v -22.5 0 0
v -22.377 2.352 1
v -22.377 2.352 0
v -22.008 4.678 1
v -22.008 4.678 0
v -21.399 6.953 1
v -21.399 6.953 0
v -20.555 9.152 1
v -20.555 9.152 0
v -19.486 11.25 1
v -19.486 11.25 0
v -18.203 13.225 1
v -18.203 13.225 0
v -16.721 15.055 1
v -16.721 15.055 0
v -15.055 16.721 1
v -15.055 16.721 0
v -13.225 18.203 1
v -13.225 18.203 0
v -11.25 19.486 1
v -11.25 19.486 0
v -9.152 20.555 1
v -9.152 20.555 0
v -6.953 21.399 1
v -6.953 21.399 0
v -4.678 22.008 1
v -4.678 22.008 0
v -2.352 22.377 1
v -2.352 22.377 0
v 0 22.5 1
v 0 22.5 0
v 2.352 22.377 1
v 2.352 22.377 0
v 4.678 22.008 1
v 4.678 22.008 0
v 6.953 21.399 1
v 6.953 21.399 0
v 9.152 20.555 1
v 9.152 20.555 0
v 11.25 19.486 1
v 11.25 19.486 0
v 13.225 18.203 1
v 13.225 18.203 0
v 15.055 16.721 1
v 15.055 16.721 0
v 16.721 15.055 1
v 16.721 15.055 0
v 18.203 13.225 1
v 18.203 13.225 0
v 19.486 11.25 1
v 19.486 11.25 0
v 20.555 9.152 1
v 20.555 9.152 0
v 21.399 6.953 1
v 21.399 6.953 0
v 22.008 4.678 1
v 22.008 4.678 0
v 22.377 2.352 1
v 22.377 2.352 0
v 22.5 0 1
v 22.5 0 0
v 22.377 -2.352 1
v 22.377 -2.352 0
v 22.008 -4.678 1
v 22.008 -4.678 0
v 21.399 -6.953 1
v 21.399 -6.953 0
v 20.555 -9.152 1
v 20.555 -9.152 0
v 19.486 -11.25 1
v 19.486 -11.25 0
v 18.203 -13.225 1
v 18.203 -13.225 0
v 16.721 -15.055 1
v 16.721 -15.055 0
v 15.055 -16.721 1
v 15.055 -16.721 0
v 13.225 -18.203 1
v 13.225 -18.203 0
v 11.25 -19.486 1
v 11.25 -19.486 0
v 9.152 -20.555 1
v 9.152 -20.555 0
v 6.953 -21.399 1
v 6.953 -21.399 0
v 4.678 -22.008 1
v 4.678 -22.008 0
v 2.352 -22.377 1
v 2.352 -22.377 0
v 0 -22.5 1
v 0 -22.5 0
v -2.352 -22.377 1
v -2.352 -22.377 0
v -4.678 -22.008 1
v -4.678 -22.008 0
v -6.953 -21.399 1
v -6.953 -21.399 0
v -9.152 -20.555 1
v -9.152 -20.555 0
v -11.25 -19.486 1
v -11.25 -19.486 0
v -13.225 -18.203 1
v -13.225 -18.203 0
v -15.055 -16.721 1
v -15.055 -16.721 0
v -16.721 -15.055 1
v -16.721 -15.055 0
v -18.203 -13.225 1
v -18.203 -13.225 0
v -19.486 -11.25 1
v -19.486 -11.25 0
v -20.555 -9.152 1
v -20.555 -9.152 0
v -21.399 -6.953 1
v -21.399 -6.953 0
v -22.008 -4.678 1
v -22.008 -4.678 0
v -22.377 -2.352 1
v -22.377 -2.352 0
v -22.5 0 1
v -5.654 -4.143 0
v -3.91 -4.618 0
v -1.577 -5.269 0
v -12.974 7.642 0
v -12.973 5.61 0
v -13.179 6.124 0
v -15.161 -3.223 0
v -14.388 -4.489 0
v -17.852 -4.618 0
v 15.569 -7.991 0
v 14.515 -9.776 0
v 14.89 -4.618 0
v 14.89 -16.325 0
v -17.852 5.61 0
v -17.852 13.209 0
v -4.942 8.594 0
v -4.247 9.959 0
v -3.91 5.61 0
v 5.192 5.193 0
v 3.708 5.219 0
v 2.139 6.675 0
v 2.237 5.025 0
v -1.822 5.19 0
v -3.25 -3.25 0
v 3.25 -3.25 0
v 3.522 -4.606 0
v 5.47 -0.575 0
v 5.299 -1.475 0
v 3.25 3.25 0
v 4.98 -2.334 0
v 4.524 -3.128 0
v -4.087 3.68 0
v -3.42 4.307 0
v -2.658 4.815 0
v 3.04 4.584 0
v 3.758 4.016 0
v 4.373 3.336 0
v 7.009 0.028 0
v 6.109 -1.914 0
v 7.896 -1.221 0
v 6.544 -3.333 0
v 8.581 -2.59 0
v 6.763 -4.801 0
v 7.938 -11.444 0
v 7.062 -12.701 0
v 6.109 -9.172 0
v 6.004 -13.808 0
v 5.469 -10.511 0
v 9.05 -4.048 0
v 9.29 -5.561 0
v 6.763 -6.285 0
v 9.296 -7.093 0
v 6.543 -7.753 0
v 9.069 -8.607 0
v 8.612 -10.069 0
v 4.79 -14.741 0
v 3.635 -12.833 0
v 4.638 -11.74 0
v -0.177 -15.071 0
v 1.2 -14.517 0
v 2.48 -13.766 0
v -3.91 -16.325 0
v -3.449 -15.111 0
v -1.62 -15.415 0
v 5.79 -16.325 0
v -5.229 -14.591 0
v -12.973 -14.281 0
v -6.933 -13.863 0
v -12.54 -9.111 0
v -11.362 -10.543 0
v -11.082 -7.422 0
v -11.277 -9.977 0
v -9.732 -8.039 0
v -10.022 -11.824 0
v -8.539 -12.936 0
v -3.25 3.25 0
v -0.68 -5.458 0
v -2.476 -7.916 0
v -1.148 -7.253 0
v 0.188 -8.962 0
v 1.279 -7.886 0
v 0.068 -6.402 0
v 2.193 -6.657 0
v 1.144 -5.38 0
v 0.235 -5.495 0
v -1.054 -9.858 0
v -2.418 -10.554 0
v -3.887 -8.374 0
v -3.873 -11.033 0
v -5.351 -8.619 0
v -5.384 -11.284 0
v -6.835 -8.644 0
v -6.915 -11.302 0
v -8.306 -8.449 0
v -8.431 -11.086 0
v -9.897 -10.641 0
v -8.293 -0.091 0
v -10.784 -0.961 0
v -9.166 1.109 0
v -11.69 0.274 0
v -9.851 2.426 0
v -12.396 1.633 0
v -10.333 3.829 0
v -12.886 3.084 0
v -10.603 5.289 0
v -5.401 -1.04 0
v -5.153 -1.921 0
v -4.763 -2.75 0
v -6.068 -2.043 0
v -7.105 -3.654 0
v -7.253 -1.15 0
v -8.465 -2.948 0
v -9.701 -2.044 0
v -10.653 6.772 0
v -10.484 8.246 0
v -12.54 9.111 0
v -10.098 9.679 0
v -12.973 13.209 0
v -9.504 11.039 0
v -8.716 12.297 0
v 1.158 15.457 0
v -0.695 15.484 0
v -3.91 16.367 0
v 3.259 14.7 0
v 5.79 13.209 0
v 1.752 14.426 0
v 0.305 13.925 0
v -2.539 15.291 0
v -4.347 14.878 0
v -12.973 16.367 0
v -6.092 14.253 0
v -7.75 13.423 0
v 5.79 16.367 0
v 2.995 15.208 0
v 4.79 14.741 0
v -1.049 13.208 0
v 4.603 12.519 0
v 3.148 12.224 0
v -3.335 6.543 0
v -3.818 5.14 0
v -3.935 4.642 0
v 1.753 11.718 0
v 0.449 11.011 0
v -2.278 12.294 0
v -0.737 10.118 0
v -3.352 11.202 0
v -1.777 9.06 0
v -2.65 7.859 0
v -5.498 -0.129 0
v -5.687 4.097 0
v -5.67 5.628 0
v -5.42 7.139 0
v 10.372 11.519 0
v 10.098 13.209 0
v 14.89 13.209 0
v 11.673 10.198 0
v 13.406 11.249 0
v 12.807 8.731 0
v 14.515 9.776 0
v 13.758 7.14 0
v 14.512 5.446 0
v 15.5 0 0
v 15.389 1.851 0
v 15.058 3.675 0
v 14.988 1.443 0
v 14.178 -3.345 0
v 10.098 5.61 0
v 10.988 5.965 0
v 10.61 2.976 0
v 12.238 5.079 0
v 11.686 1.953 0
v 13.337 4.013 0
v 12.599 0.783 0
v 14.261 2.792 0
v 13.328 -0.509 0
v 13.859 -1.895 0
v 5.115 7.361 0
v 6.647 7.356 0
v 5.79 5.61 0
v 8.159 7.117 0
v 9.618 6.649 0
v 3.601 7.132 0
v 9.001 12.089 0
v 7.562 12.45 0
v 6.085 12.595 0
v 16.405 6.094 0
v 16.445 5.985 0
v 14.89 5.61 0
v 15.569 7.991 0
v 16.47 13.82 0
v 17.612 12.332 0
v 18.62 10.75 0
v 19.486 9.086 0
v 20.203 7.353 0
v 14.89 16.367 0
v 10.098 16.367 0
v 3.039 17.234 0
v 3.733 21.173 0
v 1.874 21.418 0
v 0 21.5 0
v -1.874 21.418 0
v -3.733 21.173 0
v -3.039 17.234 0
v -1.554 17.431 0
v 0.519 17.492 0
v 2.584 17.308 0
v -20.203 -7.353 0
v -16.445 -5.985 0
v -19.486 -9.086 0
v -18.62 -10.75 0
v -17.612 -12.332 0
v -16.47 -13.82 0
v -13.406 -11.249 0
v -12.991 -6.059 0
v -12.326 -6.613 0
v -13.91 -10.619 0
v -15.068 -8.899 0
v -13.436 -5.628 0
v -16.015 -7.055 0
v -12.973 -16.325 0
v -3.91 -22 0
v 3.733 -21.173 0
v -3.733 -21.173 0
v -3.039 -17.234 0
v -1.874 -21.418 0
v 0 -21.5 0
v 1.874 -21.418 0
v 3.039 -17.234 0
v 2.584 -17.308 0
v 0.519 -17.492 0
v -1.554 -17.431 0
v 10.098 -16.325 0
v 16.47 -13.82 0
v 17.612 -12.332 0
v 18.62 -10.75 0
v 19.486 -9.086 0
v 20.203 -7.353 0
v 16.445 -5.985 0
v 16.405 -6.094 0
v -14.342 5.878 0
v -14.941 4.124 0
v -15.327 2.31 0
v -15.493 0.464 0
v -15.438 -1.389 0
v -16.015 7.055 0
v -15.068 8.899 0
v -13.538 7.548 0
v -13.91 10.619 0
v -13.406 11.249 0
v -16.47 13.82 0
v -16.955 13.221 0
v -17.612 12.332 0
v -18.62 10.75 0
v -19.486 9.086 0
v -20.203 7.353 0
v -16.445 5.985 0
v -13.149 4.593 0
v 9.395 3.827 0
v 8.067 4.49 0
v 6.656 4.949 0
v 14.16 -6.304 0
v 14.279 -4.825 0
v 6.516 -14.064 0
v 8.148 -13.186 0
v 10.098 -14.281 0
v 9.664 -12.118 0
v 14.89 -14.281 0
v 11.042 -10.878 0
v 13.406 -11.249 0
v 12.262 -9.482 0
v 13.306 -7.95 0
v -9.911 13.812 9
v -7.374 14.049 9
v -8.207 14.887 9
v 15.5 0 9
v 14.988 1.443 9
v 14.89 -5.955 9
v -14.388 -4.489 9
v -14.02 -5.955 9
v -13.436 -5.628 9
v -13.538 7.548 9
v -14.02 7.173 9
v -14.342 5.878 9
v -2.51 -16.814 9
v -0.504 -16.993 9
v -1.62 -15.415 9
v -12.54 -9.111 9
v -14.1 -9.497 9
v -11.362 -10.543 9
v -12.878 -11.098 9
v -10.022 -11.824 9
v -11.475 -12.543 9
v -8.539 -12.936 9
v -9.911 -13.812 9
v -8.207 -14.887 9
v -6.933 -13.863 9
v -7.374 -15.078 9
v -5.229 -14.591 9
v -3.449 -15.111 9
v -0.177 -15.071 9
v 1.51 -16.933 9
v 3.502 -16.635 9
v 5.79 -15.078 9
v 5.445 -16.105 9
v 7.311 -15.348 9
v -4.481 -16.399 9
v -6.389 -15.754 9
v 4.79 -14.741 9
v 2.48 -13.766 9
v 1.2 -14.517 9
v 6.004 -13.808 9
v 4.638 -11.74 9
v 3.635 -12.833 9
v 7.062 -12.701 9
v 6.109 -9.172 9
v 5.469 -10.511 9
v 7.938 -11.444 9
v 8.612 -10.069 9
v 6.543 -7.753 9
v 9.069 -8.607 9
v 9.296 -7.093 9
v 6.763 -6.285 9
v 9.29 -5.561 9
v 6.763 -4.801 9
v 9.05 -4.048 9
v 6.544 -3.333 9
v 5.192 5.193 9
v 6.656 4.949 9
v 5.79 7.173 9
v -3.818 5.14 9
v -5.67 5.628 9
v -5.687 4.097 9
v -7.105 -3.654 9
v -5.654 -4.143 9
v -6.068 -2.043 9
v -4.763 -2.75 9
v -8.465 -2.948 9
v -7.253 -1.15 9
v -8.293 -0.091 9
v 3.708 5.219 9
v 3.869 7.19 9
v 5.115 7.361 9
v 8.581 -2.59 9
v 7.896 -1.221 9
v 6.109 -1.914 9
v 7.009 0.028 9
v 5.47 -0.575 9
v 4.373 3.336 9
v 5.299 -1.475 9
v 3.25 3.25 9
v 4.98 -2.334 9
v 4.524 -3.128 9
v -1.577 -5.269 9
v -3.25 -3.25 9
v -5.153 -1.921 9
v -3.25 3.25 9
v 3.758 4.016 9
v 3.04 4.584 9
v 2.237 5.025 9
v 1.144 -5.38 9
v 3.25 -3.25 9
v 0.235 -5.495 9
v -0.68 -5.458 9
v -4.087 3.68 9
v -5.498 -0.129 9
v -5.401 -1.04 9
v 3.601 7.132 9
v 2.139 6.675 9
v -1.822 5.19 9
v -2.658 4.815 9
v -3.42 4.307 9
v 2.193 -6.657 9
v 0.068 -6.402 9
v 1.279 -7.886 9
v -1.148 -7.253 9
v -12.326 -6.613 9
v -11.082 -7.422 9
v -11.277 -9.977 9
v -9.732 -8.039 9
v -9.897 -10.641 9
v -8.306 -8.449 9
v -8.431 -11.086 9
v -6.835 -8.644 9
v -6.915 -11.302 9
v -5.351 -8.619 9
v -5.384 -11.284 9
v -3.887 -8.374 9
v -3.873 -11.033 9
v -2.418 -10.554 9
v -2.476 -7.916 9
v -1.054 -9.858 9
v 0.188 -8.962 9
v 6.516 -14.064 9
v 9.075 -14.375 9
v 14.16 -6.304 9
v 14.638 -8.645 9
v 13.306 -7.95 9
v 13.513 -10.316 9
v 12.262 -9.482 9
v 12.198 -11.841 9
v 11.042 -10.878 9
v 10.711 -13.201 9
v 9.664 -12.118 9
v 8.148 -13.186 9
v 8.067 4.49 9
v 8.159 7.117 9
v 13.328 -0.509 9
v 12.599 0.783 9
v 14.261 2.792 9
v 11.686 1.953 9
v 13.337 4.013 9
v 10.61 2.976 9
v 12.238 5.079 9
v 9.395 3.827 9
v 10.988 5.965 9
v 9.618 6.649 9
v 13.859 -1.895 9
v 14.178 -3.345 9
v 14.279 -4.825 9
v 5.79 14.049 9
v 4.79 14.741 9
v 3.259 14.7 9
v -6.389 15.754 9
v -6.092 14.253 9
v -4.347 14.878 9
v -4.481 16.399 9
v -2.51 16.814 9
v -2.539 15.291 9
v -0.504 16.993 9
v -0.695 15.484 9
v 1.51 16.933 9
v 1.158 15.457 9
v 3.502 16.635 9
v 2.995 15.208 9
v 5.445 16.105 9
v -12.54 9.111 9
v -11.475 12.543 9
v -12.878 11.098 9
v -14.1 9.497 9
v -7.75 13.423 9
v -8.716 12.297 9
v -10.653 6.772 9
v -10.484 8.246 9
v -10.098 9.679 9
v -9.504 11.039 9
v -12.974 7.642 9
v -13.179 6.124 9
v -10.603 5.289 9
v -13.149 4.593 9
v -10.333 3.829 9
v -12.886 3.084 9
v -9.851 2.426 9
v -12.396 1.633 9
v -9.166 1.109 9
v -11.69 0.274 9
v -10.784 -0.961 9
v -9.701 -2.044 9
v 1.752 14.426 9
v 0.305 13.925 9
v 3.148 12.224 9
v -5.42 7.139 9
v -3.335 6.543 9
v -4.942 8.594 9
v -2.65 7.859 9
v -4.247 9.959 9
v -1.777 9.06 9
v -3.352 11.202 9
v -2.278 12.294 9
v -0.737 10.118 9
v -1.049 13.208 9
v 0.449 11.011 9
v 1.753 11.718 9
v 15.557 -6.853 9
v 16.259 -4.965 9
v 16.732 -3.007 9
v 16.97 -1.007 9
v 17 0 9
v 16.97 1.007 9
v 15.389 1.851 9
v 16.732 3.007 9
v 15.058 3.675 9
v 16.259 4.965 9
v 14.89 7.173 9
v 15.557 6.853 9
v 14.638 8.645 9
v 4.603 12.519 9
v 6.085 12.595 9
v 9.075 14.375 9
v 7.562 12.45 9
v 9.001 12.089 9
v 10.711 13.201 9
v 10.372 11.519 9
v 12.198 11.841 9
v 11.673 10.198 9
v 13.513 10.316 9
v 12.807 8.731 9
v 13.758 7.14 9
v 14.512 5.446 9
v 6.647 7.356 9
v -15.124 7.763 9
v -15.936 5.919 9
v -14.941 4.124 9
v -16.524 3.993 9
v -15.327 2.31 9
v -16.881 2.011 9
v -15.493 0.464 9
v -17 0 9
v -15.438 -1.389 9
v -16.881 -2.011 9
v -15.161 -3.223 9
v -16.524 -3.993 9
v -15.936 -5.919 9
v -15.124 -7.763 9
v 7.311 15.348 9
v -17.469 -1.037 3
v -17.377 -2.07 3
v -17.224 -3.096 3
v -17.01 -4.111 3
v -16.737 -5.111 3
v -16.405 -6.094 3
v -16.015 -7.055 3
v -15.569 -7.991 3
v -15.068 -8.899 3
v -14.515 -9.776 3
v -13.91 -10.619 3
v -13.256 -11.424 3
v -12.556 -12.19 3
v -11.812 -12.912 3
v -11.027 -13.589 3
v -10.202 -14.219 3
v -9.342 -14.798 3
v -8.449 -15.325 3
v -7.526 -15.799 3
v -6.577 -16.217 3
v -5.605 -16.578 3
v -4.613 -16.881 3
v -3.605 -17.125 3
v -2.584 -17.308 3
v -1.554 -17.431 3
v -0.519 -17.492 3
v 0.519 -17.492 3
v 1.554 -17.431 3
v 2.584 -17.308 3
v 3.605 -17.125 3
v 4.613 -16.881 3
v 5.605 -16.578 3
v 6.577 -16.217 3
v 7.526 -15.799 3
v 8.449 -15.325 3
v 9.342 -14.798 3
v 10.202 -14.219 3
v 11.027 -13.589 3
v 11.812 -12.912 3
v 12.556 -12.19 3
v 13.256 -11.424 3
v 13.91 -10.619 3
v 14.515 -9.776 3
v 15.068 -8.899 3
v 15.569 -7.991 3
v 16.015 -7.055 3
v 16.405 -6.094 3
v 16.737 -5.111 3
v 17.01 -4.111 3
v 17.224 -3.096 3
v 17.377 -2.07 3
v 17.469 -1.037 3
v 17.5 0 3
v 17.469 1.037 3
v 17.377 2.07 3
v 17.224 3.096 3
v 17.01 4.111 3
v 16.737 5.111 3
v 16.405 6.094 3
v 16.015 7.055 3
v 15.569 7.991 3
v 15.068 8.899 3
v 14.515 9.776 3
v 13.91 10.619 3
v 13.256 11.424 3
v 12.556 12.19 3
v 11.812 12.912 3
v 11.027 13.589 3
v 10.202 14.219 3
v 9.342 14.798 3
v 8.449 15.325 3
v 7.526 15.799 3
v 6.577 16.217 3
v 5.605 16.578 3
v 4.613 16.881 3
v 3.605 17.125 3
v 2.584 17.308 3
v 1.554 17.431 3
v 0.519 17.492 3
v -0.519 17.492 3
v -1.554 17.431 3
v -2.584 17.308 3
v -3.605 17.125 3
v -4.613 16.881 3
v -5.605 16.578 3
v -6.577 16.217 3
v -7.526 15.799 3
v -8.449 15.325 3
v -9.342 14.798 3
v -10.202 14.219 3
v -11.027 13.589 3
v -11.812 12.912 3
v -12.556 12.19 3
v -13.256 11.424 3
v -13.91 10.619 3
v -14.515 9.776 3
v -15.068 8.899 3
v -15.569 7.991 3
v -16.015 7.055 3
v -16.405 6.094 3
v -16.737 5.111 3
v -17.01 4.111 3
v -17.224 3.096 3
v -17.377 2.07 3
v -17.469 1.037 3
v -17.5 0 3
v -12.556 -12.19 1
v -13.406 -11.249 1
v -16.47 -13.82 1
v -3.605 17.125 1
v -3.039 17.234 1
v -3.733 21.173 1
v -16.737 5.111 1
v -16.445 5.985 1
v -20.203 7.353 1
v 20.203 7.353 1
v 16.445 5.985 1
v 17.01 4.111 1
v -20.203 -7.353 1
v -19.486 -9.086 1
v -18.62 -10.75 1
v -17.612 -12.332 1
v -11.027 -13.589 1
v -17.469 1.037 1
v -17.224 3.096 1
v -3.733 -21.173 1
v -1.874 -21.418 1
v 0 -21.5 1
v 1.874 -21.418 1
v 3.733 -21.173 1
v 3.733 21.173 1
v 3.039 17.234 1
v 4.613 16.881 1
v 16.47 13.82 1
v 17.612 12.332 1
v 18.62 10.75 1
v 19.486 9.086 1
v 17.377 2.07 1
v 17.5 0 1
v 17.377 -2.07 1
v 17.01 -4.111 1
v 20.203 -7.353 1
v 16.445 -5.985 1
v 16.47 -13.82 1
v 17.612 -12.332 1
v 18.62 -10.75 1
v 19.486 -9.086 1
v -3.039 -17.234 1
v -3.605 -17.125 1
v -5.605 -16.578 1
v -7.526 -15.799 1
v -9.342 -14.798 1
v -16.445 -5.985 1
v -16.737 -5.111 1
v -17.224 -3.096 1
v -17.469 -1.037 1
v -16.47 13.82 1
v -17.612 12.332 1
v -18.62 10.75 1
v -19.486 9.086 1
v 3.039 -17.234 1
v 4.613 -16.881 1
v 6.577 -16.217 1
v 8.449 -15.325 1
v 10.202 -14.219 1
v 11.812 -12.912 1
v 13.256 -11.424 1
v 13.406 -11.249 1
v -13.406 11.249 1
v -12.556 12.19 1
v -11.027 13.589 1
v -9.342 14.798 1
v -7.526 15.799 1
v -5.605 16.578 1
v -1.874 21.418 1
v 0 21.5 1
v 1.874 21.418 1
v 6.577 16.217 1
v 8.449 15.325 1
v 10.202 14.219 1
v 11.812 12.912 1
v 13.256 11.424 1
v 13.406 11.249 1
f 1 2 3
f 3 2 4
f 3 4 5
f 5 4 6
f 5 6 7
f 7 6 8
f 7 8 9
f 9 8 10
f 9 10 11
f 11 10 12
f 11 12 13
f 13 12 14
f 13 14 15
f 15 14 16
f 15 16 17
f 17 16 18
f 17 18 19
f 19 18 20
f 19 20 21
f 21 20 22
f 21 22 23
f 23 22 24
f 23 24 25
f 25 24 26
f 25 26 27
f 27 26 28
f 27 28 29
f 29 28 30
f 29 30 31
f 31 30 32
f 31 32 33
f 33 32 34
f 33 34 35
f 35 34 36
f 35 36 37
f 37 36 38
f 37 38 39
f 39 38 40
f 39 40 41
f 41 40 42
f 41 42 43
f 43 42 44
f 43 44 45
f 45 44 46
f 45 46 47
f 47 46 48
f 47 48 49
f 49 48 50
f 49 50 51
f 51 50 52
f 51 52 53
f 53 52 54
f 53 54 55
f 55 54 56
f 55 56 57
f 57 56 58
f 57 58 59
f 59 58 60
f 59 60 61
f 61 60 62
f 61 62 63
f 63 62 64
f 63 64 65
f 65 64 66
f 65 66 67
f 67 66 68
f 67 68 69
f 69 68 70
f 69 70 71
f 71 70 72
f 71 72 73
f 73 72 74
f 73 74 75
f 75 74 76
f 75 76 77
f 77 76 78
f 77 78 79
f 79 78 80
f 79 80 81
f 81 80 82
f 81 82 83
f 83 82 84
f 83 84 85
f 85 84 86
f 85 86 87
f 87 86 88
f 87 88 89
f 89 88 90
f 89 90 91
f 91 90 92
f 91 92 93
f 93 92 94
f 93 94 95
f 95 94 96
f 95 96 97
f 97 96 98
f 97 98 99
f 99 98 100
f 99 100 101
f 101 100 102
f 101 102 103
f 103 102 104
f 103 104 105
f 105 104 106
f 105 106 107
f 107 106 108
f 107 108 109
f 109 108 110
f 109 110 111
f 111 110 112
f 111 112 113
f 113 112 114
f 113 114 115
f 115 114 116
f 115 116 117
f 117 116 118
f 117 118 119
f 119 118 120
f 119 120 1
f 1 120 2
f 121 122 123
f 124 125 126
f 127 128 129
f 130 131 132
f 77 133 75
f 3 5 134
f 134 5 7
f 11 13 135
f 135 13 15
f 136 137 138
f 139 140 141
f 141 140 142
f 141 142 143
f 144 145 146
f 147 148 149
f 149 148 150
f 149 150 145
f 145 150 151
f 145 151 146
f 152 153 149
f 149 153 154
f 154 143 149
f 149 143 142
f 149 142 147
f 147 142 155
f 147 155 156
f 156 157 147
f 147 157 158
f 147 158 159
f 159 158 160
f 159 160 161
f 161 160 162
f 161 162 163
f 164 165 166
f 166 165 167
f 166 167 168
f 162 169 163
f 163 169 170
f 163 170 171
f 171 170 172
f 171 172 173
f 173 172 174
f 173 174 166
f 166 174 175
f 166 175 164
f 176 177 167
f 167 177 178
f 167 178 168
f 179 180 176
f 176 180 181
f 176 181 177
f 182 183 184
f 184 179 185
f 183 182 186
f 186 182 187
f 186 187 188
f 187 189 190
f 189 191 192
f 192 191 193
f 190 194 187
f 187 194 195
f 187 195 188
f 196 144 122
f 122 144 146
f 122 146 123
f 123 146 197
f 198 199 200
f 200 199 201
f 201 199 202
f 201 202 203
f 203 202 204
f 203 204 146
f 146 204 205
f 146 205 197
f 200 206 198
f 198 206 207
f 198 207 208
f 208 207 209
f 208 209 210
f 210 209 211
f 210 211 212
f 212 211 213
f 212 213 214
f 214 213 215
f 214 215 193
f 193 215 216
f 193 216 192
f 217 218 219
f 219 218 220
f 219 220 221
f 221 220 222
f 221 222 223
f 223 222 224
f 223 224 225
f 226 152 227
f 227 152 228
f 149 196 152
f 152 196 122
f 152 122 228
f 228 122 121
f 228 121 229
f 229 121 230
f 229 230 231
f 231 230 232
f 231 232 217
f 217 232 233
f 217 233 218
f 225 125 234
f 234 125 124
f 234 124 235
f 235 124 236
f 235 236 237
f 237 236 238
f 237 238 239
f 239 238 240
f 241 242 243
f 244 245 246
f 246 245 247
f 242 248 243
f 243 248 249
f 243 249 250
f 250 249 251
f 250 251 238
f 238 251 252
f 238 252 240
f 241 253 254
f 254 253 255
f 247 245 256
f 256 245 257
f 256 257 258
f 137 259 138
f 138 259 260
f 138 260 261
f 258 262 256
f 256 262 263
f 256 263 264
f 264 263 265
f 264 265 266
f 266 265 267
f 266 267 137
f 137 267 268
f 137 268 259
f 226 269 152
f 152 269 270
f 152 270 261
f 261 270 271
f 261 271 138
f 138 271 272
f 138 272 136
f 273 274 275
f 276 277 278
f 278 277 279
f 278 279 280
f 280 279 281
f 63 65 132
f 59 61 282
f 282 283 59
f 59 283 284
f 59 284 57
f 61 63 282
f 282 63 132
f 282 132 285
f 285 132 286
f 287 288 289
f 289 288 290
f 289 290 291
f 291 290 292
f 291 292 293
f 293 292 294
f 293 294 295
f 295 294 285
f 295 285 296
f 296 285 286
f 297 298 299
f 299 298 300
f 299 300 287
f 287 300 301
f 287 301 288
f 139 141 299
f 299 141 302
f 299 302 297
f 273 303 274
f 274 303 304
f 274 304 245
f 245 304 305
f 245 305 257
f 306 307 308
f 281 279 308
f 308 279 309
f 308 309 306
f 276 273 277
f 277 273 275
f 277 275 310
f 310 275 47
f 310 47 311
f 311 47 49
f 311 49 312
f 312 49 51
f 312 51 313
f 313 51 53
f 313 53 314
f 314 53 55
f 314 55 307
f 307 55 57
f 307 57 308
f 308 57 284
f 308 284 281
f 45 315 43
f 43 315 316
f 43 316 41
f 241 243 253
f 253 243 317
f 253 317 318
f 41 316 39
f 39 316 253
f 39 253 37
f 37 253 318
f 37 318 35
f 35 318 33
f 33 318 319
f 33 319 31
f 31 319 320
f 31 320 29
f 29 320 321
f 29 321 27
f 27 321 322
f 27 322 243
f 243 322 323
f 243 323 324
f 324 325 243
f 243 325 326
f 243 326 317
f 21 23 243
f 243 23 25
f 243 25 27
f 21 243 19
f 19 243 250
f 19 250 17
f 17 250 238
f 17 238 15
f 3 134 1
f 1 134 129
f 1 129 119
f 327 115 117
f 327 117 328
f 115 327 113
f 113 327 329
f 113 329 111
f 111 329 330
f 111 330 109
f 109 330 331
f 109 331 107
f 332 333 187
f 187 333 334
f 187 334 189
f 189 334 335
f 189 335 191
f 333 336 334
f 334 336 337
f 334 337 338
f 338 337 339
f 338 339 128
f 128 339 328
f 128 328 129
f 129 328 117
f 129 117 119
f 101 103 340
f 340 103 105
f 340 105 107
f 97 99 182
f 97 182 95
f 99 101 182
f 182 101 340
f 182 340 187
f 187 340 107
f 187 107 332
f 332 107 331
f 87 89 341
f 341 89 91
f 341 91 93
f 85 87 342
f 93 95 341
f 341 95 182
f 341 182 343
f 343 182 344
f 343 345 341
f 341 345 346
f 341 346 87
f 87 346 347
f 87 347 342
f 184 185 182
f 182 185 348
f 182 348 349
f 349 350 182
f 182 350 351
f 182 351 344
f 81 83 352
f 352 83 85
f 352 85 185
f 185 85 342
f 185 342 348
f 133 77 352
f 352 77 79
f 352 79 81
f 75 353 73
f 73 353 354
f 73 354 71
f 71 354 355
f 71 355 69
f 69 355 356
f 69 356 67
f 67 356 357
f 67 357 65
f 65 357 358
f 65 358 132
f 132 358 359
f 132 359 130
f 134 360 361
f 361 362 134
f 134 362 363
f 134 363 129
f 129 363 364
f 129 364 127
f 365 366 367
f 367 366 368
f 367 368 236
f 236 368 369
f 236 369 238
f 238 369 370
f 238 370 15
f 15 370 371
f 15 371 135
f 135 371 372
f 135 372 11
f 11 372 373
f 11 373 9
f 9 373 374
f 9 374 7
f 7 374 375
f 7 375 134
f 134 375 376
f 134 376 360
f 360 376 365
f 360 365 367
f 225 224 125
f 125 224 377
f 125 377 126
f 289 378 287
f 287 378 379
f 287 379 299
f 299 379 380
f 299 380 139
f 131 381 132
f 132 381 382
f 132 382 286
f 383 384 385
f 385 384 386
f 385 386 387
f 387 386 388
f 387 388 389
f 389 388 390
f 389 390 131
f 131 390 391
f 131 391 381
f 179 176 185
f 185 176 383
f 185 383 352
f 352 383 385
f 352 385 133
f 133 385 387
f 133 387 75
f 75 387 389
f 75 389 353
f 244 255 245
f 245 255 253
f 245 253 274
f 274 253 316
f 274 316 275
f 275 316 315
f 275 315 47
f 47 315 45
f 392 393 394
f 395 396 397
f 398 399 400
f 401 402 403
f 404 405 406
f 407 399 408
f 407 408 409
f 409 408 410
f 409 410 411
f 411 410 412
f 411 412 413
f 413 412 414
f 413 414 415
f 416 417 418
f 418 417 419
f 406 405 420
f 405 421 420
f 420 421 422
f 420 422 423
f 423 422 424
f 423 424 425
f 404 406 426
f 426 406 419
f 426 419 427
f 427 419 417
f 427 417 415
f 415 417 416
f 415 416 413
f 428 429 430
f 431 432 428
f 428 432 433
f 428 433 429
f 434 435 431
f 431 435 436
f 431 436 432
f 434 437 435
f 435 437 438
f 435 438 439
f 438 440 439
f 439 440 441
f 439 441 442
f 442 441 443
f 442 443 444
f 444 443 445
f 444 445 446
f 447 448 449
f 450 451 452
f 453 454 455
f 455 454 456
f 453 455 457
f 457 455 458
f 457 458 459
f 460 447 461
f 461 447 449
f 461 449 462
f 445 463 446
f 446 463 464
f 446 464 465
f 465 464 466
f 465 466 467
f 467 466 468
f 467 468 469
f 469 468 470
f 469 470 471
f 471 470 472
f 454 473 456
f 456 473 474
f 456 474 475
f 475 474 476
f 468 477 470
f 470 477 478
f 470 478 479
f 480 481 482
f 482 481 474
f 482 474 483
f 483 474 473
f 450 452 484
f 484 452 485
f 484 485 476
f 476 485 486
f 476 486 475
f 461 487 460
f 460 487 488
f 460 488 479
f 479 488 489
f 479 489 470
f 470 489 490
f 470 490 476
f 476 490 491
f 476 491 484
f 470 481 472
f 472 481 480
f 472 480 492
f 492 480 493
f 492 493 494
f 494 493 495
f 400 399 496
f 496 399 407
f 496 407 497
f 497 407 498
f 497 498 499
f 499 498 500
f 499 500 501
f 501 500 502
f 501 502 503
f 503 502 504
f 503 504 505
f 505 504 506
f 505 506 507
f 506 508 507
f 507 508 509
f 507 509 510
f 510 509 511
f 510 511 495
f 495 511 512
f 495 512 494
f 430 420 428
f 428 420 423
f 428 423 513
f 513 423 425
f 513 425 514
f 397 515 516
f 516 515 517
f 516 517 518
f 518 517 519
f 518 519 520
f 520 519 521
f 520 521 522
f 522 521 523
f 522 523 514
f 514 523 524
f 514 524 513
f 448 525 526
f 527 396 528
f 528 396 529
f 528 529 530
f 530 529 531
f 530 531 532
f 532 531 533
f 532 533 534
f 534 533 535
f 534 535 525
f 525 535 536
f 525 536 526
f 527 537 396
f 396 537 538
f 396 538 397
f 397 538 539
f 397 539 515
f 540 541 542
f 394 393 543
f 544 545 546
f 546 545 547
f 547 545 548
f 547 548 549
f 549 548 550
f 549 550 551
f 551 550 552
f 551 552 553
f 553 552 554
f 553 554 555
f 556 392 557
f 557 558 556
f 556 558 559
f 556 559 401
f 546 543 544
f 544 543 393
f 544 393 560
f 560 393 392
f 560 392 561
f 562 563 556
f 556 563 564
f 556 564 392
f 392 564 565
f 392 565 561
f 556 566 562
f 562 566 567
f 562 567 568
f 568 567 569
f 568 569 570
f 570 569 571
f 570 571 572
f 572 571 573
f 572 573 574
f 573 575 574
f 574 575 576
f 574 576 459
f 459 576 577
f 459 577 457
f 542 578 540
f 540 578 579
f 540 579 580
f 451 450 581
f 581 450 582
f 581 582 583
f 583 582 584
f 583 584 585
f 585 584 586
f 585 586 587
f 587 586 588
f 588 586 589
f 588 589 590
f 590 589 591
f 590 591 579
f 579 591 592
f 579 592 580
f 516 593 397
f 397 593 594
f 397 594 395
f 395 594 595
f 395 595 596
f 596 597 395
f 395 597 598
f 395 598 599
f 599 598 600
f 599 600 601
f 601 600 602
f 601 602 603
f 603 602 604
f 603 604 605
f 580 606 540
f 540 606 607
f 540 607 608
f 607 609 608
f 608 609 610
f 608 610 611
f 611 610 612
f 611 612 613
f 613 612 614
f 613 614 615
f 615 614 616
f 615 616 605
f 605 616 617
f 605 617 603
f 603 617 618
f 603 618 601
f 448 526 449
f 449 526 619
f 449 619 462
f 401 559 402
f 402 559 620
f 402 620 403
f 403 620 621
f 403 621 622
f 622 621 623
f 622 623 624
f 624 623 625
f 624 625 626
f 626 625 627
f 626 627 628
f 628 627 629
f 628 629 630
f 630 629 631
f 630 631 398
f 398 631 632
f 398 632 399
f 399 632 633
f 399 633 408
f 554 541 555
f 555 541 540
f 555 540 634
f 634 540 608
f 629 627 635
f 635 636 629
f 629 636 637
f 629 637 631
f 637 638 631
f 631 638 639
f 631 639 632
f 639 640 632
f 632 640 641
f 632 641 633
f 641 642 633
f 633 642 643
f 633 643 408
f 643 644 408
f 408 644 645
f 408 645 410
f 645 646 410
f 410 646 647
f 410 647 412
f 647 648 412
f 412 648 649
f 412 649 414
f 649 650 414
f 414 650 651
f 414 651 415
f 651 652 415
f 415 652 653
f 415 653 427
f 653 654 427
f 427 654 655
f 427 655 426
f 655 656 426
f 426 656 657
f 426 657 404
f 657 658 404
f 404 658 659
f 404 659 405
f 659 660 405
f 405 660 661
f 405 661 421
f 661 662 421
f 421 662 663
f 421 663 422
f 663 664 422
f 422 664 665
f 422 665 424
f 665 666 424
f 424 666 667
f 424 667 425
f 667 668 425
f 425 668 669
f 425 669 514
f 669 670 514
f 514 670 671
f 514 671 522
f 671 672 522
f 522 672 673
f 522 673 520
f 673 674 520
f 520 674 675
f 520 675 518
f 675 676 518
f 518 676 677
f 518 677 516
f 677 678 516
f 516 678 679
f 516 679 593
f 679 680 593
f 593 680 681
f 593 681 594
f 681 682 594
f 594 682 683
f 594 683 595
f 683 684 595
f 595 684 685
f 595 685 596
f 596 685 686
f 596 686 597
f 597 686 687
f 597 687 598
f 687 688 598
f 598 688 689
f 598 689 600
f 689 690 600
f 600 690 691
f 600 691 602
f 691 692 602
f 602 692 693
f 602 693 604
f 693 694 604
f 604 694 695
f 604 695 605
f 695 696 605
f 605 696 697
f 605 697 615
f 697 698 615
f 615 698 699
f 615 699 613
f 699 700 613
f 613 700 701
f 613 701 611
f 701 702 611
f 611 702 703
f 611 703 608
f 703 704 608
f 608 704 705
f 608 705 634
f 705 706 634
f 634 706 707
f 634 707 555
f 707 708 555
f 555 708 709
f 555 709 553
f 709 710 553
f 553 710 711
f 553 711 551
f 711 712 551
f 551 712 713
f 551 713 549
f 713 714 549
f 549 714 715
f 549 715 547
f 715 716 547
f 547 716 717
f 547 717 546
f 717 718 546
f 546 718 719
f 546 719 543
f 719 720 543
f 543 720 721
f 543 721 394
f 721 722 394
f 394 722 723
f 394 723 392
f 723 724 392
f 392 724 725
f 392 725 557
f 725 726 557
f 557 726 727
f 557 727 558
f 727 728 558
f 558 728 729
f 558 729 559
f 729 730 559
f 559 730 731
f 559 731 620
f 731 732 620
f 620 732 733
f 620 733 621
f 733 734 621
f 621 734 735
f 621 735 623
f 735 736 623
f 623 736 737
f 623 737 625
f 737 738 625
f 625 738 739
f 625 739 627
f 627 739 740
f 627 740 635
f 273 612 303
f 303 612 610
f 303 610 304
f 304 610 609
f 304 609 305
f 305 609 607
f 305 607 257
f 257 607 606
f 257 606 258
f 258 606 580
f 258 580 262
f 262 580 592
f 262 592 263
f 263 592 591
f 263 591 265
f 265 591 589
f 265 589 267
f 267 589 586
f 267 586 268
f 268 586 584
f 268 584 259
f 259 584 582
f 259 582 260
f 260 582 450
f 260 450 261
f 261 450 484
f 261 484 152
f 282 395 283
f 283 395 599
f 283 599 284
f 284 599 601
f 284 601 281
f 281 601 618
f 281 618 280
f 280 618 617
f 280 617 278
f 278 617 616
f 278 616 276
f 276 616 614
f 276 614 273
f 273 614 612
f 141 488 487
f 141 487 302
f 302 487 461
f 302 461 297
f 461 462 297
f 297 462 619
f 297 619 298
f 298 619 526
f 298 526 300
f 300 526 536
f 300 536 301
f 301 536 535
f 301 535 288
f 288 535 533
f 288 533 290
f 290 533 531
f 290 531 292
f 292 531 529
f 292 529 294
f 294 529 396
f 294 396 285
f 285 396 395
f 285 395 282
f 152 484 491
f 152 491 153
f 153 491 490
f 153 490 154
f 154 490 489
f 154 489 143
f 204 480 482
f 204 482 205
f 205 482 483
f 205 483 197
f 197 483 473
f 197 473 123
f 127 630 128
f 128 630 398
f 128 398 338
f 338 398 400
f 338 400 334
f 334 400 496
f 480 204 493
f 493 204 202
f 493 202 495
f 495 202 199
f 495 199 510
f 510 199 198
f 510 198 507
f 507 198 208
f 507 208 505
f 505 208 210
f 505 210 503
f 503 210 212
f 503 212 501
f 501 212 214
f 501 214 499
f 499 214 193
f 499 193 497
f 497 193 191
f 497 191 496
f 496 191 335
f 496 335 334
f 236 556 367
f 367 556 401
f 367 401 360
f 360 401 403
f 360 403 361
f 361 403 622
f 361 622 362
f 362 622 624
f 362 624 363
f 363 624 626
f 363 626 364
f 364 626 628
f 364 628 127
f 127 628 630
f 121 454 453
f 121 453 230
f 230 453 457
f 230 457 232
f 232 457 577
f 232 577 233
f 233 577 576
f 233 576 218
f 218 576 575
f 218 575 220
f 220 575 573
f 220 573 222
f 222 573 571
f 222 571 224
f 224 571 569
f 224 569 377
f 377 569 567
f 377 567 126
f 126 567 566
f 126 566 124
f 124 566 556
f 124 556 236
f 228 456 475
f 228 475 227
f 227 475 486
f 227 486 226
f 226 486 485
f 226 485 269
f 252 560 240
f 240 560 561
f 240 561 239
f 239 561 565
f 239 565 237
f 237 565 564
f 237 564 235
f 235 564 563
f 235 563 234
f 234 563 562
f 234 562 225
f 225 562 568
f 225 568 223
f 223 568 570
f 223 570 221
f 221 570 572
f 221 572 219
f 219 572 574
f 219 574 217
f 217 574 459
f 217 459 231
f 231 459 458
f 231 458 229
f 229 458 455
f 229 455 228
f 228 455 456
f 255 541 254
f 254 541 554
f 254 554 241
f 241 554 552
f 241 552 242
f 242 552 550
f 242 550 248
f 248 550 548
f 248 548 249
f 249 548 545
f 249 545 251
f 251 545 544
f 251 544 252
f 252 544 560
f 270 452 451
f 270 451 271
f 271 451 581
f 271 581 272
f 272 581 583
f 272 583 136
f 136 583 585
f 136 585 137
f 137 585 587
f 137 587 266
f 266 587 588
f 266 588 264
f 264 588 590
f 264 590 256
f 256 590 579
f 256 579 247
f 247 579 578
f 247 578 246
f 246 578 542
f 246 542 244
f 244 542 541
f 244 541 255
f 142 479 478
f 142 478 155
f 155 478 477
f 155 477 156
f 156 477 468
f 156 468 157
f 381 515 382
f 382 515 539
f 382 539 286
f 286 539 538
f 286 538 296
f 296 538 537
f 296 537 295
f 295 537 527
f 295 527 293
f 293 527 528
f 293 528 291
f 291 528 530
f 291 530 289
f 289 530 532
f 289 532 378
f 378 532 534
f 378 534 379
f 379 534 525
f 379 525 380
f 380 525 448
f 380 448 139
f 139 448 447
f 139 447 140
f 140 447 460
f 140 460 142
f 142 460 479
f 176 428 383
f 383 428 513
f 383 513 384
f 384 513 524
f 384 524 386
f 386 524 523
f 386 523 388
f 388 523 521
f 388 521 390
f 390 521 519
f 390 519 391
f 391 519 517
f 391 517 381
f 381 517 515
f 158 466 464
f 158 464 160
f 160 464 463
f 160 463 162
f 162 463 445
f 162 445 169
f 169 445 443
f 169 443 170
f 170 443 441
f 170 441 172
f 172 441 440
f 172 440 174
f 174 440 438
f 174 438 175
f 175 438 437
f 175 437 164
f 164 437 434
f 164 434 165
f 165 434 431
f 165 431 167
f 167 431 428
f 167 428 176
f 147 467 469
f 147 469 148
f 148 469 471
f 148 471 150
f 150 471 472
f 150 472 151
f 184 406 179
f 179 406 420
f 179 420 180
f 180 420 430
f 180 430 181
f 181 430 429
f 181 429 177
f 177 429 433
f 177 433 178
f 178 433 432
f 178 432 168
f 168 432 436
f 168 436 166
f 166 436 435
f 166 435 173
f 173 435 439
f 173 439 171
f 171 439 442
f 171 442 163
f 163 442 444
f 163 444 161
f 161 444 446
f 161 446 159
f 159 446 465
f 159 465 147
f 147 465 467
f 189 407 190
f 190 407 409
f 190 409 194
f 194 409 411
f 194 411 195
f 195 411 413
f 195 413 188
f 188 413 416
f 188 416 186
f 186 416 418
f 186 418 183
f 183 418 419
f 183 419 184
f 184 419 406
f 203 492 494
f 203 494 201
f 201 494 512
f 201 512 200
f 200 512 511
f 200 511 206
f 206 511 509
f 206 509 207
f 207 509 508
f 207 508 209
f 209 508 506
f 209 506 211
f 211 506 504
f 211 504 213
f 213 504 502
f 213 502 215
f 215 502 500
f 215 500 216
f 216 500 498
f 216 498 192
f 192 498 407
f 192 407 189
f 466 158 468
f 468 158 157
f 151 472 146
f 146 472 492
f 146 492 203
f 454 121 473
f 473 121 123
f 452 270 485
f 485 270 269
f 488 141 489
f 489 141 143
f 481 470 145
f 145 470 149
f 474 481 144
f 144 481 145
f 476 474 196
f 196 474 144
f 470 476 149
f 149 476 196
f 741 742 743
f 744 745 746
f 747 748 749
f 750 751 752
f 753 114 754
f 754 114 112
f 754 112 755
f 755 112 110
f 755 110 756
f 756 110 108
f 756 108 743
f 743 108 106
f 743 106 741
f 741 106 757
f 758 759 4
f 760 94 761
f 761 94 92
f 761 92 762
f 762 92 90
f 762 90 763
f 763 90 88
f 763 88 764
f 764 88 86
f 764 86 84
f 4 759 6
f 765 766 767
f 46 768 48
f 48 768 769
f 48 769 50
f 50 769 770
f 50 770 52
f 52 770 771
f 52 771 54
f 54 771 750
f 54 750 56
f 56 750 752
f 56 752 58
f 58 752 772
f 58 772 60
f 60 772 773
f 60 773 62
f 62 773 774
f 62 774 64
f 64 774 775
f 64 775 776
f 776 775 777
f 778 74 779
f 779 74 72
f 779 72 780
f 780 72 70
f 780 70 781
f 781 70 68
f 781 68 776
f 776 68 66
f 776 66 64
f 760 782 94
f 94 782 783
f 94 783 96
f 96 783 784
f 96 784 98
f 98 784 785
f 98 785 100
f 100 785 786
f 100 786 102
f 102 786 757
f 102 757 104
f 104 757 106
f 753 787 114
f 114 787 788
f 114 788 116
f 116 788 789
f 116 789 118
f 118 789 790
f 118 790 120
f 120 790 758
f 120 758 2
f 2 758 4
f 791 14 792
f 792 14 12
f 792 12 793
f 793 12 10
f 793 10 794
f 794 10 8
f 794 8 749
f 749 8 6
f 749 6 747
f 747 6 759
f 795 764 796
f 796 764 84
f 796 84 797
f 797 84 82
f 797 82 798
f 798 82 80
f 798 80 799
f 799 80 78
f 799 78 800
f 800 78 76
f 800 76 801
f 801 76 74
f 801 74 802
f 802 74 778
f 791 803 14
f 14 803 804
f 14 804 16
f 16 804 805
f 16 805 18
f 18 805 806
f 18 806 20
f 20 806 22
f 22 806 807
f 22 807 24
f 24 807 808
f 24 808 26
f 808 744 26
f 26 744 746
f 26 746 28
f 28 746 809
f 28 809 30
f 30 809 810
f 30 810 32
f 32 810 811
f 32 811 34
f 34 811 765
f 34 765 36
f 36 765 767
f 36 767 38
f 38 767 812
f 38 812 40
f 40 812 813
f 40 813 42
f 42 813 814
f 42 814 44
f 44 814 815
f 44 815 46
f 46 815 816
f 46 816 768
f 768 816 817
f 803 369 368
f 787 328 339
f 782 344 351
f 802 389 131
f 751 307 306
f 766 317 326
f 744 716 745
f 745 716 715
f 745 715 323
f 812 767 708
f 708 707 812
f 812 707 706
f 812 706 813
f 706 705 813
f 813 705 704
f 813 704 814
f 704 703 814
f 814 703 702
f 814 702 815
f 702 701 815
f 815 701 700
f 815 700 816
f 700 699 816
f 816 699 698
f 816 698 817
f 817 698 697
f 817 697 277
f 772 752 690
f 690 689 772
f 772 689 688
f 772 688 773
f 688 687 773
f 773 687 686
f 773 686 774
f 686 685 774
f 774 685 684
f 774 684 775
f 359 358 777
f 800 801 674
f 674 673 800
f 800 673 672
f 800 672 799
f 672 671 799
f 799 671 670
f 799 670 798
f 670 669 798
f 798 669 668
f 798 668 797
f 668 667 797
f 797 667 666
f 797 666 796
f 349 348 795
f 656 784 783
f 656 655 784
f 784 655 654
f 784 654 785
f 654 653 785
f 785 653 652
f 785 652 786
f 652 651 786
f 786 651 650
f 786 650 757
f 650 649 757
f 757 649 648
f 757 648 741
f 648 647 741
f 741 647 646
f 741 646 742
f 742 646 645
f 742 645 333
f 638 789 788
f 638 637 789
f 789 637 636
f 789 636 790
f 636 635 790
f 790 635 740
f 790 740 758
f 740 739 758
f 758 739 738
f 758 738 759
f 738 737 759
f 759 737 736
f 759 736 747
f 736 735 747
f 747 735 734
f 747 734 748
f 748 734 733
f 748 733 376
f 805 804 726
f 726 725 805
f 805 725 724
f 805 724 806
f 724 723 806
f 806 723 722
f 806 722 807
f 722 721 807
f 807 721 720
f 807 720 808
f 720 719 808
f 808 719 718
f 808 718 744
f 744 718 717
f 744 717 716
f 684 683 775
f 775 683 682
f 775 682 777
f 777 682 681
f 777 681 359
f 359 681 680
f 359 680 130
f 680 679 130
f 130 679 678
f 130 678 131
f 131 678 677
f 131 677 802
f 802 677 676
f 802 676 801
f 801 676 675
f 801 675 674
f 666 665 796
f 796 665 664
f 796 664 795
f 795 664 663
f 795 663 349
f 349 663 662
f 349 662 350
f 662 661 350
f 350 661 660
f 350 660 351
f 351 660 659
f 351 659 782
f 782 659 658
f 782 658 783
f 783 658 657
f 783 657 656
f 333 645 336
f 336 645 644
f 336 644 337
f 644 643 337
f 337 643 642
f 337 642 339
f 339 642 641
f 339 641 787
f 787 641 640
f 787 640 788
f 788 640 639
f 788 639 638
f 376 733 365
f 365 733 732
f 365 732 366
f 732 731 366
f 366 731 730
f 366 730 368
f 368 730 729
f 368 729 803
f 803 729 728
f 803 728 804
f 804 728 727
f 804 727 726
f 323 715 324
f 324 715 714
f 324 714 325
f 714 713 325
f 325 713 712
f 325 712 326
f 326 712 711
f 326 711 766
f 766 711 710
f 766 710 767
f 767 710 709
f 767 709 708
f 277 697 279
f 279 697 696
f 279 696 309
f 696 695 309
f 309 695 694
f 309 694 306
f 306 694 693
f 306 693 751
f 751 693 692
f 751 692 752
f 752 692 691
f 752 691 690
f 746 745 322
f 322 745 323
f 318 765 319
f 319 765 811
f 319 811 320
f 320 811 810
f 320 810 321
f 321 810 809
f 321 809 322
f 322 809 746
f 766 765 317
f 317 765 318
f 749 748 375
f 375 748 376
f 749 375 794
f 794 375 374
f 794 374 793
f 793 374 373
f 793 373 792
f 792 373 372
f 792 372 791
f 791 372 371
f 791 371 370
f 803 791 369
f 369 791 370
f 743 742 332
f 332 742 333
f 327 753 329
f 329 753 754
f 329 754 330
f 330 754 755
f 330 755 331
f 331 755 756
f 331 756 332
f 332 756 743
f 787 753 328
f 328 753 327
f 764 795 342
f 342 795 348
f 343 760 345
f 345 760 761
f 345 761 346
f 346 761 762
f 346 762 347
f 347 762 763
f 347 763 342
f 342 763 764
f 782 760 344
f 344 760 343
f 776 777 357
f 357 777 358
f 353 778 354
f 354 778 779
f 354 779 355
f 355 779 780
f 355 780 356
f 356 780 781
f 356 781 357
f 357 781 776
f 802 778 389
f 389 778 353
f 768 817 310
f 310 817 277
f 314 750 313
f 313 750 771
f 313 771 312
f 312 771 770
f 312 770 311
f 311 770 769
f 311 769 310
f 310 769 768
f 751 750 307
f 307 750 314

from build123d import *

# Parameters (mm, degrees)
SKETCH1_R           = 22.5
BOSS_EXTRUDE1_DEPTH = 3
SKETCH2_R           = 17.5
BOSS_EXTRUDE2_DEPTH = 6
CHAMFER1_SIZE       = 6
CHAMFER1_SIZE_2     = 0.5
CUT_EXTRUDE1_REACH  = 35.068
FILLET1_R           = 100
CUT_EXTRUDE2_REACH  = 35.068
SKETCH4_W           = 6.5
SKETCH4_H           = 6.5
CUT_EXTRUDE3_START  = -2
SKETCH6_R           = 22.5
SKETCH6_R_2         = 17.5
CUT_EXTRUDE3_DEPTH  = 2
CUT_EXTRUDE4_REACH  = 34.81
CIRPATTERN1_COUNT   = 6


with BuildPart() as part:
    # Sketch1 → Boss-Extrude1 (new body)
    with BuildSketch(Plane.XY):
        Circle(SKETCH1_R)
    extrude(amount=BOSS_EXTRUDE1_DEPTH)

    # Sketch2 → Boss-Extrude2 (add)
    with BuildSketch(Plane.XY.offset(3)):
        Circle(SKETCH2_R)
    extrude(amount=BOSS_EXTRUDE2_DEPTH)

    # Chamfer1
    # the kernel refuses this chamfer: 6, 0.5 mm, written as the material it takes off along each edge
    with BuildSketch(Plane(origin=(0, 0, 9), x_dir=(1, 0, 0), z_dir=(0, -1, 0))) as chamfer1_piece_1_section:
        Polygon((17.5, -CHAMFER1_SIZE), (17.5 - CHAMFER1_SIZE_2, 0), (17.5, 0), align=None)
    chamfer1_piece_1 = revolve(axis=Axis((0, 0, 9), (0, 0, 1)), mode=Mode.PRIVATE)
    chamfer1_piece_1 = split(chamfer1_piece_1, bisect_by=Plane(origin=(-17.303133917, 0, 3), z_dir=(0, 0, 1)), keep=Keep.TOP, mode=Mode.PRIVATE)
    add(chamfer1_piece_1, mode=Mode.SUBTRACT)

    # Sketch3 → Cut-Extrude1 (cut, up to next)
    with BuildSketch(Plane.XY.offset(9), mode=Mode.PRIVATE) as cut_extrude1_sk1:
        with BuildLine():
            ThreePointArc((0, 5.5), (9.191338757, 6.81195468), (15.5, 0))
            ThreePointArc((15.5, 0), (14.159954593, 6.304417968), (10.371524399, 11.518744795))
            ThreePointArc((10.371524399, 11.518744795), (1.087937204, 11.388583202), (-4.08729654, 3.680218335))
            ThreePointArc((-4.08729654, 3.680218335), (-2.237051537, 5.024500017), (0, 5.5))
        make_face()
    cut_extrude1_tool1 = extrude(cut_extrude1_sk1.sketch, amount=-CUT_EXTRUDE1_REACH, mode=Mode.PRIVATE) & part.part
    # Sketch3 → Cut-Extrude1 (cut, up to next)
    with BuildSketch(Plane.XY.offset(9), mode=Mode.PRIVATE) as cut_extrude1_sk2:
        with BuildLine():
            ThreePointArc((14.159954593, -6.304417968), (11.167377351, 2.484575984), (2.237051537, 5.024500017))
            ThreePointArc((2.237051537, 5.024500017), (4.08729654, 3.680218335), (5.23081084, 1.699593469))
            ThreePointArc((5.23081084, 1.699593469), (9.318833764, -6.636472858), (4.789763413, -14.741376003))
            ThreePointArc((4.789763413, -14.741376003), (10.371524399, -11.518744795), (14.159954593, -6.304417968))
        make_face()
    cut_extrude1_tool2 = extrude(cut_extrude1_sk2.sketch, amount=-CUT_EXTRUDE1_REACH, mode=Mode.PRIVATE) & part.part
    # Sketch3 → Cut-Extrude1 (cut, up to next)
    with BuildSketch(Plane.XY.offset(9), mode=Mode.PRIVATE) as cut_extrude1_sk3:
        with BuildLine():
            ThreePointArc((-5.23081084, 1.699593469), (-3.63827401, 10.84649238), (4.789763413, 14.741376003))
            ThreePointArc((4.789763413, 14.741376003), (-1.620191181, 15.415089378), (-7.75, 13.423393759))
            ThreePointArc((-7.75, 13.423393759), (-10.494995181, 4.553955519), (-4.763139721, -2.75))
            ThreePointArc((-4.763139721, -2.75), (-5.469870425, -0.574906548), (-5.23081084, 1.699593469))
        make_face()
    cut_extrude1_tool3 = extrude(cut_extrude1_sk3.sketch, amount=-CUT_EXTRUDE1_REACH, mode=Mode.PRIVATE) & part.part
    # Sketch3 → Cut-Extrude1 (cut, up to next)
    with BuildSketch(Plane.XY.offset(9), mode=Mode.PRIVATE) as cut_extrude1_sk4:
        with BuildLine():
            ThreePointArc((-1.620191181, -15.415089378), (5.813881563, -9.853030796), (5.469870425, -0.574906548))
            ThreePointArc((5.469870425, -0.574906548), (4.763139721, -2.75), (3.232818888, -4.449593469))
            ThreePointArc((3.232818888, -4.449593469), (-3.431982756, -10.913520471), (-12.539763413, -9.110671411))
            ThreePointArc((-12.539763413, -9.110671411), (-7.75, -13.423393759), (-1.620191181, -15.415089378))
        make_face()
    cut_extrude1_tool4 = extrude(cut_extrude1_sk4.sketch, amount=-CUT_EXTRUDE1_REACH, mode=Mode.PRIVATE) & part.part
    # Sketch3 → Cut-Extrude1 (cut, up to next)
    with BuildSketch(Plane.XY.offset(9), mode=Mode.PRIVATE) as cut_extrude1_sk5:
        with BuildLine():
            ThreePointArc((-3.232818888, -4.449593469), (-11.439915756, -0.10845373), (-12.539763413, 9.110671411))
            ThreePointArc((-12.539763413, 9.110671411), (-15.161287811, 3.222631208), (-15.161287811, -3.222631208))
            ThreePointArc((-15.161287811, -3.222631208), (-7.574200938, -8.574083908), (1.143514299, -5.379811804))
            ThreePointArc((1.143514299, -5.379811804), (-1.143514299, -5.379811804), (-3.232818888, -4.449593469))
        make_face()
    cut_extrude1_tool5 = extrude(cut_extrude1_sk5.sketch, amount=-CUT_EXTRUDE1_REACH, mode=Mode.PRIVATE) & part.part
    add(cut_extrude1_tool1.solids().sort_by_distance((5.79241, 8.44736, 9))[0], mode=Mode.SUBTRACT)
    add(cut_extrude1_tool2.solids().sort_by_distance((9.82387, -2.898532, 9))[0], mode=Mode.SUBTRACT)
    add(cut_extrude1_tool3.solids().sort_by_distance((-6.243964, 8.119288, 9))[0], mode=Mode.SUBTRACT)
    add(cut_extrude1_tool4.solids().sort_by_distance((0.279075, -10.238752, 9))[0], mode=Mode.SUBTRACT)
    add(cut_extrude1_tool5.solids().sort_by_distance((-9.651392, -3.429365, 9))[0], mode=Mode.SUBTRACT)

    # Fillet1
    fillet1_edges = [part.edges().sort_by_distance(p)[0] for p in [
        (3.232818888, -4.449593469, 4.5),
        (5.23081084, 1.699593469, 4.5),
        (-5.23081084, 1.699593469, 4.5),
        (-3.232818888, -4.449593469, 4.5),
        (0, 5.5, 4.5),
    ]]
    fillet(fillet1_edges, radius=FILLET1_R)

    # Sketch4 → Cut-Extrude2 (cut, up to next)
    with BuildSketch(Plane.XY.offset(9), mode=Mode.PRIVATE) as cut_extrude2_sk1:
        Rectangle(SKETCH4_W, SKETCH4_H)
    cut_extrude2_tool1 = extrude(cut_extrude2_sk1.sketch, amount=-CUT_EXTRUDE2_REACH, mode=Mode.PRIVATE) & part.part
    add(cut_extrude2_tool1.solids().sort_by_distance((0, 0, 9))[0], mode=Mode.SUBTRACT)

    # Sketch6 → Cut-Extrude3 (cut)
    with BuildSketch(Plane.XY.offset(3).offset(CUT_EXTRUDE3_START)):
        Circle(SKETCH6_R)
        Circle(SKETCH6_R_2, mode=Mode.SUBTRACT)
    extrude(amount=CUT_EXTRUDE3_DEPTH, mode=Mode.SUBTRACT)

    # Sketch7 → Cut-Extrude4 (cut, up to next)
    with BuildSketch(Plane.XY.offset(1), mode=Mode.PRIVATE) as cut_extrude4_sk1:
        with BuildLine():
            Line((3.73343582, 21.17336669), (-3.73343582, 21.17336669))
            Line((-3.73343582, 21.17336669), (-3.038843109, 17.234135678))
            ThreePointArc((-3.038843109, 17.234135678), (0, 17.5), (3.038843109, 17.234135678))
            Line((3.038843109, 17.234135678), (3.73343582, 21.17336669))
        make_face()
    cut_extrude4_tool1 = extrude(cut_extrude4_sk1.sketch, amount=-CUT_EXTRUDE4_REACH, mode=Mode.PRIVATE) & part.part
    # Sketch7 → Cut-Extrude4 (cut, up to next)
    with BuildSketch(Plane.XY.offset(1), mode=Mode.PRIVATE) as cut_extrude4_sk2:
        with BuildLine():
            ThreePointArc((3.73343582, 21.17336669), (0, 21.5), (-3.73343582, 21.17336669))
            Line((-3.73343582, 21.17336669), (3.73343582, 21.17336669))
        make_face()
    cut_extrude4_tool2 = extrude(cut_extrude4_sk2.sketch, amount=-CUT_EXTRUDE4_REACH, mode=Mode.PRIVATE) & part.part
    cut_extrude4_1 = cut_extrude4_tool1.solids().sort_by_distance((0, 19.352452, 1))[0]
    add(cut_extrude4_1, mode=Mode.SUBTRACT)
    cut_extrude4_2 = cut_extrude4_tool2.solids().sort_by_distance((0, 21.304105, 1))[0]
    add(cut_extrude4_2, mode=Mode.SUBTRACT)
    cut_extrude4 = cut_extrude4_1 + cut_extrude4_2  # Cut-Extrude4 as one shape, for the pattern or mirror that repeats it

    # CirPattern1: Cut-Extrude4 ×6 about axis
    cirpattern1_axis = Axis((0, 0, 0), (0, 0, 1))
    for i in range(1, CIRPATTERN1_COUNT):
        add(cut_extrude4.rotate(cirpattern1_axis, i * 360 / CIRPATTERN1_COUNT), mode=Mode.SUBTRACT)


solid = part.part
